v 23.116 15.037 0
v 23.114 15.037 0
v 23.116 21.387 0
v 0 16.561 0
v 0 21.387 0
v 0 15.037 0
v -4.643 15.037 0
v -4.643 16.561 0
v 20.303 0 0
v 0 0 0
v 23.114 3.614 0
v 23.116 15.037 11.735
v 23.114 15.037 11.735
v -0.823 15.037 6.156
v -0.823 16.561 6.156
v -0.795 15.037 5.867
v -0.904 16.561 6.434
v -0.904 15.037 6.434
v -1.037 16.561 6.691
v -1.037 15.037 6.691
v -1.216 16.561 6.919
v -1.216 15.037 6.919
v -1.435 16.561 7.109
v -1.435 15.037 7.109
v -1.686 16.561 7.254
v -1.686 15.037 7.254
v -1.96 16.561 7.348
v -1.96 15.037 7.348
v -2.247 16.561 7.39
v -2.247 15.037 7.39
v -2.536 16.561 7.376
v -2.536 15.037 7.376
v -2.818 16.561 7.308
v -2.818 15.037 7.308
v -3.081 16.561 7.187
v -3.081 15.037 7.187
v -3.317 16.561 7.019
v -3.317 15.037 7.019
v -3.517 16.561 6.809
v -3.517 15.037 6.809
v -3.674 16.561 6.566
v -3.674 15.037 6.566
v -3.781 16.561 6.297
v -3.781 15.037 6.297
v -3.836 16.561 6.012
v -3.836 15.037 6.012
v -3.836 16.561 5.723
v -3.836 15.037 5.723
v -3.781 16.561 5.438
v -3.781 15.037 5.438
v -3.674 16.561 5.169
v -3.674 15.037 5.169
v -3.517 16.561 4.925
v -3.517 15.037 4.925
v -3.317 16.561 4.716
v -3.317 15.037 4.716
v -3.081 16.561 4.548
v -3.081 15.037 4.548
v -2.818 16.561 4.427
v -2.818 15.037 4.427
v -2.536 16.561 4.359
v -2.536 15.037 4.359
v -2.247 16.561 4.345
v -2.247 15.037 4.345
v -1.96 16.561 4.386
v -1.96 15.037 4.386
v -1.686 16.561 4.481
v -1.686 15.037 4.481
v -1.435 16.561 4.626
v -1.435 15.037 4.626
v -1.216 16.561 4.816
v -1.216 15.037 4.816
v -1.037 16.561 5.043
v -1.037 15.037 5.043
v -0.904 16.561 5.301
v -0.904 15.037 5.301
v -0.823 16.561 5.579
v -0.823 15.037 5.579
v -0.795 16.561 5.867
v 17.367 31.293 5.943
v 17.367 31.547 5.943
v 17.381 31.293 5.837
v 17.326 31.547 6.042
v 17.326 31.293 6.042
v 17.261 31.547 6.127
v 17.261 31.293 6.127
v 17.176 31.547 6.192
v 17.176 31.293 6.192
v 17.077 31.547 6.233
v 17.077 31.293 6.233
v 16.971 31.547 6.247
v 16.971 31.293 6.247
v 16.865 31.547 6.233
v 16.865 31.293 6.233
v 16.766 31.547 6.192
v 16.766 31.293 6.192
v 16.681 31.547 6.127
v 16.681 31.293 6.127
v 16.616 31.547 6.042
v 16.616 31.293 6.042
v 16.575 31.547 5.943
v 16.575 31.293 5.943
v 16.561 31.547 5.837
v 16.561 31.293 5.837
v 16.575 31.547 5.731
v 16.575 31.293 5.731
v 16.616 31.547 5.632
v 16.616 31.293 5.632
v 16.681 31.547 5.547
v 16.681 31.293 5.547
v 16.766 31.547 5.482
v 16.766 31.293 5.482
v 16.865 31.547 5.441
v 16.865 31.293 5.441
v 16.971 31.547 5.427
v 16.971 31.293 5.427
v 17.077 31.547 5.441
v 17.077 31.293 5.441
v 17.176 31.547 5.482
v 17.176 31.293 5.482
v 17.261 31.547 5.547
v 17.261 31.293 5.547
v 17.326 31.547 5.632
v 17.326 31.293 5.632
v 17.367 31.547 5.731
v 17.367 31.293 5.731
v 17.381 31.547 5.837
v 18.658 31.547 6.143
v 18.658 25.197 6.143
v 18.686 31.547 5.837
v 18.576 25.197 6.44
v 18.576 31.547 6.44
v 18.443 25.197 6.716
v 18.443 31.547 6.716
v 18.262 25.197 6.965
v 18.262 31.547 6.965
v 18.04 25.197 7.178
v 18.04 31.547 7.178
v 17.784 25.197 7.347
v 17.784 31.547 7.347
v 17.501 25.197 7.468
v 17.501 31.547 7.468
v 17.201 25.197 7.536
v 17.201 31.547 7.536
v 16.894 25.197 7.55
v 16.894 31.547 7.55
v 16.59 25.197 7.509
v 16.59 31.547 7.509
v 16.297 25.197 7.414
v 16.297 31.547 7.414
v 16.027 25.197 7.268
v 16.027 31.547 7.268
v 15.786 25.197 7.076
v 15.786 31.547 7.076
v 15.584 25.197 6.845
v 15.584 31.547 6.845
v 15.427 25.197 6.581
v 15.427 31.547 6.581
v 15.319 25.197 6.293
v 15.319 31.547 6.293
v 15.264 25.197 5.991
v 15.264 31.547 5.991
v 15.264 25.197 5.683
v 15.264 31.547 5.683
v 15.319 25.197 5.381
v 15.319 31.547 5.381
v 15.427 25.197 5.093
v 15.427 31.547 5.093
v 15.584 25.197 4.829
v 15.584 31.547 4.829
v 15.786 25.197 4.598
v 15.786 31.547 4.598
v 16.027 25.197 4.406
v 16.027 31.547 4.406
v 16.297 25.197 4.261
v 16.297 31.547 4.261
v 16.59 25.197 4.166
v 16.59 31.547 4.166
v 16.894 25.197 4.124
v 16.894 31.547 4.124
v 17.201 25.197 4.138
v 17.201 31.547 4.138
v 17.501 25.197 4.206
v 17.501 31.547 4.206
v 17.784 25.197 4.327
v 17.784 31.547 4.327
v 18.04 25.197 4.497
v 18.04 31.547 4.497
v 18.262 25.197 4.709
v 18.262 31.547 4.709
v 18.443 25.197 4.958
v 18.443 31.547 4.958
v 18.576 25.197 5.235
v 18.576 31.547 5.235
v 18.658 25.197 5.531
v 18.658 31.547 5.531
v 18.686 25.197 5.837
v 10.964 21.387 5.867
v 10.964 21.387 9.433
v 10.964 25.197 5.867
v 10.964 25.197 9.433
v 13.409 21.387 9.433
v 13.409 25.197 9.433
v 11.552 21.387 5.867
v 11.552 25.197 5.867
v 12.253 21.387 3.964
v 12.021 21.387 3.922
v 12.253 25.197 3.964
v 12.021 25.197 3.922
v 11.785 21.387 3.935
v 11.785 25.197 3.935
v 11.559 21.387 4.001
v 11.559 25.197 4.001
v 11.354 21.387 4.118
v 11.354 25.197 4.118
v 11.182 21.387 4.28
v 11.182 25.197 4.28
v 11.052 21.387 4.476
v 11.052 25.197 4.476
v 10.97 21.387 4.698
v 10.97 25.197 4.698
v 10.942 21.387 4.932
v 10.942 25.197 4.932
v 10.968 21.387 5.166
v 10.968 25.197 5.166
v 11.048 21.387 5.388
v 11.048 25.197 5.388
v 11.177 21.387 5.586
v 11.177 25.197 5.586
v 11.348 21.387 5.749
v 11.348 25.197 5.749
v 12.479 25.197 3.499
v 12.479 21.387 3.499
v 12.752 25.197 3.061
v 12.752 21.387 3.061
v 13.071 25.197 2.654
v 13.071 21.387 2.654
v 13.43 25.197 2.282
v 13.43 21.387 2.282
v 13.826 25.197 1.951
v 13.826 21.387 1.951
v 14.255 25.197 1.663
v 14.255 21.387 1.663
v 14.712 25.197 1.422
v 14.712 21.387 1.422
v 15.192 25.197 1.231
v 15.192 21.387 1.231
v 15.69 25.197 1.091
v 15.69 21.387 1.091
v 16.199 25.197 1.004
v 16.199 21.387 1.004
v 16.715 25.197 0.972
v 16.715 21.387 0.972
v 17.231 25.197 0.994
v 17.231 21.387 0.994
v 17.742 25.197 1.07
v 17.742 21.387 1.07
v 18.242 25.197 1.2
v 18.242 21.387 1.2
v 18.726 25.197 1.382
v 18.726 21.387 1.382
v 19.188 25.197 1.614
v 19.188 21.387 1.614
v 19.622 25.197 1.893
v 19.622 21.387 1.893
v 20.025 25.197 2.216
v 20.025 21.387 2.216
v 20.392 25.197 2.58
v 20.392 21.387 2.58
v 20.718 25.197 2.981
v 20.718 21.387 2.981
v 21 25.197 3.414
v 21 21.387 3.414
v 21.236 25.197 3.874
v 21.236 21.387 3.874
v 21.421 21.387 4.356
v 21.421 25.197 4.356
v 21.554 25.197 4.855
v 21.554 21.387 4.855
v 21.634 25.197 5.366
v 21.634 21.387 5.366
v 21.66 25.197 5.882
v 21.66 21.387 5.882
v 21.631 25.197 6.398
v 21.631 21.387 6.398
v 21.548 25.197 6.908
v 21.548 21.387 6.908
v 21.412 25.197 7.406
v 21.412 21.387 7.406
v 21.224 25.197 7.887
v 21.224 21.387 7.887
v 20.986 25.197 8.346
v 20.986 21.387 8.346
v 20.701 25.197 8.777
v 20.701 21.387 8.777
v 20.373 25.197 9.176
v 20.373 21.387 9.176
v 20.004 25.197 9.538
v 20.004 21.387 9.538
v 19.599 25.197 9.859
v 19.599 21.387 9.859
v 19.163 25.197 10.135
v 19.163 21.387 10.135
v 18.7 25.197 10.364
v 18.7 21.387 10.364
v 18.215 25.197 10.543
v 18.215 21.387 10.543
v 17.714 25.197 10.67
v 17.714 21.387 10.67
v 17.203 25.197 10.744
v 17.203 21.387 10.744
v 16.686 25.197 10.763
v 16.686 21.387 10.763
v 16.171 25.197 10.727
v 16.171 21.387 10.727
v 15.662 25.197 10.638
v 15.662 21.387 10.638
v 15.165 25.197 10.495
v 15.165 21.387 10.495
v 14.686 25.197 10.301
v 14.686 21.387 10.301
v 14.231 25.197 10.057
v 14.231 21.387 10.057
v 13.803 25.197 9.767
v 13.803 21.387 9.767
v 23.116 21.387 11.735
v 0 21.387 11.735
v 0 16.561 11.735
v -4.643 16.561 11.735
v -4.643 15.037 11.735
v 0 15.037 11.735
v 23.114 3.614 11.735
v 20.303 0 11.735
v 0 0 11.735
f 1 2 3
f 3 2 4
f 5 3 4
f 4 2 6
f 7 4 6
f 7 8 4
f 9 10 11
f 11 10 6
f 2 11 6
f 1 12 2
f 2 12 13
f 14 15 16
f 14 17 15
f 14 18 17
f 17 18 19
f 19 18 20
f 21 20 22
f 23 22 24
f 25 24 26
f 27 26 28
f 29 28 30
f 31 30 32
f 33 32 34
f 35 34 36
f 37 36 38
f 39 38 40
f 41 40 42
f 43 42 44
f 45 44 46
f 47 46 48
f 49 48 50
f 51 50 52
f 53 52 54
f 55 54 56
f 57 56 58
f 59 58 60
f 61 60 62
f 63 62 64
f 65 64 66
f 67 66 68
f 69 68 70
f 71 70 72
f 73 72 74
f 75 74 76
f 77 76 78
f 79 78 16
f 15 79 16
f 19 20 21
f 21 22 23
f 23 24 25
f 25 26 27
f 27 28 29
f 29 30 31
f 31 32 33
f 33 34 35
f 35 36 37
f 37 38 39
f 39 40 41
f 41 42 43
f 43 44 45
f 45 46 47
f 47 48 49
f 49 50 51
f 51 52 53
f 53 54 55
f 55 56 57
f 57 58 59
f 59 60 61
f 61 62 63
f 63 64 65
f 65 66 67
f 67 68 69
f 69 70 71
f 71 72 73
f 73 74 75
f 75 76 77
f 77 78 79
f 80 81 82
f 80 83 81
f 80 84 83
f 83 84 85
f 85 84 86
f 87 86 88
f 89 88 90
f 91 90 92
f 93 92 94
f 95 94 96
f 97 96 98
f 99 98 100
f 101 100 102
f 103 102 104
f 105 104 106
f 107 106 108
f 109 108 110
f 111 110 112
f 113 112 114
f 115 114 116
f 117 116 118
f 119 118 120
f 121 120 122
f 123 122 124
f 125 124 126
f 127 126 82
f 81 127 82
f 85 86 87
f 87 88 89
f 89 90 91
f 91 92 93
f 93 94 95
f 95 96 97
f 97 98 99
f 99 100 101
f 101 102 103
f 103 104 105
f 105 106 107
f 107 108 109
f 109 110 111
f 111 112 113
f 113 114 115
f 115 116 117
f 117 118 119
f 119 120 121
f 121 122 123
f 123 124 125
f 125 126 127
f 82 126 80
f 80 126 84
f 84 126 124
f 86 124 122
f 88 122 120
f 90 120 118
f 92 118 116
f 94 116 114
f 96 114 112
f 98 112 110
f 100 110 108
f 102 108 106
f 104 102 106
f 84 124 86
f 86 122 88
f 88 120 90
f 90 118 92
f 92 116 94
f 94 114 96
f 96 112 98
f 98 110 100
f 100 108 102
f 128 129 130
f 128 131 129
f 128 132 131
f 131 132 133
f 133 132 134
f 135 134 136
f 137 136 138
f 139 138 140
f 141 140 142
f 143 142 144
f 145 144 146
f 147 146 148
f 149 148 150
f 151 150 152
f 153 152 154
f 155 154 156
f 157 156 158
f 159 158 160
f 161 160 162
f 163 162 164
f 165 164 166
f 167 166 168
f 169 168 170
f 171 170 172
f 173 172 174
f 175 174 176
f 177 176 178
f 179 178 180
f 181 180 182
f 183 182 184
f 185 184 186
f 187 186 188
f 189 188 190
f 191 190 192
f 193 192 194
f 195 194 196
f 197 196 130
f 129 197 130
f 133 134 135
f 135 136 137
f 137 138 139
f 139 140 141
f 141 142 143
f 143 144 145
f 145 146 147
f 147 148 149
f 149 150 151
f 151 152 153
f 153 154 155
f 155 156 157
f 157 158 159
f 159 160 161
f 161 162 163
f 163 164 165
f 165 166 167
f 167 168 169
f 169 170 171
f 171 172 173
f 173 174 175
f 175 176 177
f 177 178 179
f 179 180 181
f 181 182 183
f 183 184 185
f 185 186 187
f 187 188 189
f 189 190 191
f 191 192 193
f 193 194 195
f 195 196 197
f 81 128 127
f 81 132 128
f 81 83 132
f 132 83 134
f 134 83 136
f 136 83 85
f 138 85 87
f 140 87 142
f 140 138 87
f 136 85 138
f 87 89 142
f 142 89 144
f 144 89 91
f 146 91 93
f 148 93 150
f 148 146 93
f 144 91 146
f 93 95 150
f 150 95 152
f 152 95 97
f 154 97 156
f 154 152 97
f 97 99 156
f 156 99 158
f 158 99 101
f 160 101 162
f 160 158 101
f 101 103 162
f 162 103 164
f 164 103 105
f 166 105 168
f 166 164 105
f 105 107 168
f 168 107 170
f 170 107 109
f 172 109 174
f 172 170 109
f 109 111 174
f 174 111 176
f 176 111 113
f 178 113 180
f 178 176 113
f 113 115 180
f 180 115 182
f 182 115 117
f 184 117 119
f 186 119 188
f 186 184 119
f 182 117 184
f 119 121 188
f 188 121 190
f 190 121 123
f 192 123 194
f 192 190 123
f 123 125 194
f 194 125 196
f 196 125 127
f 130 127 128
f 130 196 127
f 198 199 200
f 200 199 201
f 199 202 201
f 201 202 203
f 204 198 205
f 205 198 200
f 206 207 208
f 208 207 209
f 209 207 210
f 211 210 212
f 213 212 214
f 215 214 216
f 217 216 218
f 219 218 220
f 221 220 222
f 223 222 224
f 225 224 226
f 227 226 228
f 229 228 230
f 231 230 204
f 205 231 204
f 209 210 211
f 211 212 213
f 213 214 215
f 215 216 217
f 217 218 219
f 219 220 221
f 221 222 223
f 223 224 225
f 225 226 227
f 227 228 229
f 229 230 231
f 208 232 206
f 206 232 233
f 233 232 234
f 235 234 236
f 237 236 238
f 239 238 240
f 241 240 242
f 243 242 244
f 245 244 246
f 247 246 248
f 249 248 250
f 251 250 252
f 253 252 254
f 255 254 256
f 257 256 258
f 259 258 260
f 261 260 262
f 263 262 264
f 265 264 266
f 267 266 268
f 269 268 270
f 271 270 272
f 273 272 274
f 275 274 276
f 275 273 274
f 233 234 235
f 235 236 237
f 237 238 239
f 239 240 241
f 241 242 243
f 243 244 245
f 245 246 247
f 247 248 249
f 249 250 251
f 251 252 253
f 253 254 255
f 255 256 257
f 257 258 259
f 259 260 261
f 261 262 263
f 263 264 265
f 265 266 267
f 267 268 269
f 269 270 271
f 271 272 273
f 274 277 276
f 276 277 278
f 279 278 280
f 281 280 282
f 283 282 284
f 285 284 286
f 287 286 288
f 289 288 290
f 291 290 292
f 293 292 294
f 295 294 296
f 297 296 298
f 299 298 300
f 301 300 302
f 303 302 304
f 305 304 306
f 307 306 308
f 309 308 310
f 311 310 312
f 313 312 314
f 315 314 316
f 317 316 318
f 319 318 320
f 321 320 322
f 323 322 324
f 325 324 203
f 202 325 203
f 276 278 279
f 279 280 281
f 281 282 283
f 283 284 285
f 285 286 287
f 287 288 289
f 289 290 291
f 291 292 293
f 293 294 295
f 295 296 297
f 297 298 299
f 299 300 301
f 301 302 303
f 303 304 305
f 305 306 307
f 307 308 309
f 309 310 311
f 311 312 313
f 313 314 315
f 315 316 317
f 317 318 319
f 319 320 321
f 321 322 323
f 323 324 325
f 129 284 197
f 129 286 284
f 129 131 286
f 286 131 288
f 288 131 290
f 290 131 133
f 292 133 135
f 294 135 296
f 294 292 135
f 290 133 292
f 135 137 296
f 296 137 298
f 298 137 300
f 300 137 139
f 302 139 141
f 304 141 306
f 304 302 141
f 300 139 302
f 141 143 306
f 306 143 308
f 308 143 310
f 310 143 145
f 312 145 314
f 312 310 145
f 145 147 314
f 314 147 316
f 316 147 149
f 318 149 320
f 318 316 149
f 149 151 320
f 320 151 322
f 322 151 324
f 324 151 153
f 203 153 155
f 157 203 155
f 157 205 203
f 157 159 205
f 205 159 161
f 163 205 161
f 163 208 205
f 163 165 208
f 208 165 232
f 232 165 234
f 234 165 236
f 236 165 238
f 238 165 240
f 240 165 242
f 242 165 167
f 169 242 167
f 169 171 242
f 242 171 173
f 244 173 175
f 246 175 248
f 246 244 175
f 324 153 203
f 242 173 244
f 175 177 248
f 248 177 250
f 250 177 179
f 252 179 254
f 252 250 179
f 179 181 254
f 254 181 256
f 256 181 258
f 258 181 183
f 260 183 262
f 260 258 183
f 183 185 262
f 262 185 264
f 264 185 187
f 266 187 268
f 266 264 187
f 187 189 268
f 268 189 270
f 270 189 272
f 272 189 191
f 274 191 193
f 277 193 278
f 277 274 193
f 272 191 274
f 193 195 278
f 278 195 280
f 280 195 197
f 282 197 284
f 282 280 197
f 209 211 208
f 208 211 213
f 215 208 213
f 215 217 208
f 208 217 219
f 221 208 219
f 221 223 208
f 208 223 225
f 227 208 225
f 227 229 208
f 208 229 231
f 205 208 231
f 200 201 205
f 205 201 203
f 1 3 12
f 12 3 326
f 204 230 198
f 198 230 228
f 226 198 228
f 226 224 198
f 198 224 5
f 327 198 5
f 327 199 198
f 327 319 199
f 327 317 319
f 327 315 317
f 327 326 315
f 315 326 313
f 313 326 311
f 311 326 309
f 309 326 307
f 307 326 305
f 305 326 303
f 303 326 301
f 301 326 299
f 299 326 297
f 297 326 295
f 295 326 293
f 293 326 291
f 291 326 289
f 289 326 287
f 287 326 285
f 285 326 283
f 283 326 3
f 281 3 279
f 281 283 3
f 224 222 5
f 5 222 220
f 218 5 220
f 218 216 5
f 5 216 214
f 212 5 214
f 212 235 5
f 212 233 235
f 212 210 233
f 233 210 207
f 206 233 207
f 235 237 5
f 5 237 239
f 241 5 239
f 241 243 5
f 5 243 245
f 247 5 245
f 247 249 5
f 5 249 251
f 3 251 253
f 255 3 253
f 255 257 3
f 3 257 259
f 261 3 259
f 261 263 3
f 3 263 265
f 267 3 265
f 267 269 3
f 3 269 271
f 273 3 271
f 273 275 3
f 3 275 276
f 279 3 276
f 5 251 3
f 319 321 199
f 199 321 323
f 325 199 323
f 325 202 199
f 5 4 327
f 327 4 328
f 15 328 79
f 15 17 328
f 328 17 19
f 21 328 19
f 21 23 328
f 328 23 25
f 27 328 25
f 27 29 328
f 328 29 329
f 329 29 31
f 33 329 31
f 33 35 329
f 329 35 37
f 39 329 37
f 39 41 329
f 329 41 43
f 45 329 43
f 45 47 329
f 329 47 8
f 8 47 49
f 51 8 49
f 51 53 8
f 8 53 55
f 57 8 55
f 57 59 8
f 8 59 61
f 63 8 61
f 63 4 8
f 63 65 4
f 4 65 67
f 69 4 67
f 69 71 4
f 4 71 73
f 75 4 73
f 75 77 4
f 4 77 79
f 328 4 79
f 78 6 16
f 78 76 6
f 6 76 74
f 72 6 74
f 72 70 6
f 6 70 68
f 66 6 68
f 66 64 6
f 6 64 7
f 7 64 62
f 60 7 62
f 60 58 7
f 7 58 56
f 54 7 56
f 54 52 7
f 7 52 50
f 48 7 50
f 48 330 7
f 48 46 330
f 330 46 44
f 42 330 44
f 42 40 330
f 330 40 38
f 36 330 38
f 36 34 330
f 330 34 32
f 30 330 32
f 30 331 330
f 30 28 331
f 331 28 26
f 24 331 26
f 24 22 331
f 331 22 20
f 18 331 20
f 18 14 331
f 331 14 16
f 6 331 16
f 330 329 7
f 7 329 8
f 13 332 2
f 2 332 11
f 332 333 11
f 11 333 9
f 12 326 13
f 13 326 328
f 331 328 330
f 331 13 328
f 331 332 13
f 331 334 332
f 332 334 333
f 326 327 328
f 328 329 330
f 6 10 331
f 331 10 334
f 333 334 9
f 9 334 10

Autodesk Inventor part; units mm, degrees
ref_plane "YZ Plane" through (0, 0, 0) normal (1, 0, 0) x (0, 1, 0)
ref_plane "XZ Plane" through (0, 0, 0) normal (0, 1, 0) x (-1, 0, 0)
ref_plane "XY Plane" through (0, 0, 0) normal (0, 0, 1) x (1, 0, 0)
sketch "Sketch1" plane through (0, 0, 0) normal (0, 0, 1) x (1, 0, 0)
  line L0 (0, 0) -> (23.114, 0)
  line L1 (23.114, 0) -> (23.114, 15.0368)
  line L2 (23.114, 15.0368) -> (0, 15.0368)
  line L3 (0, 15.0368) -> (0, 0)
  dimension "d0" = 15.0368
  dimension "d1" = 23.114
extrude "Extrusion1" add sketch "Sketch1" along normal blind 11.7348
sketch "Sketch2" plane through (0, 0, 11.7348) normal (0, 0, 1) x (1, 0, 0)
  line L0 (23.114, 0) -> (23.114, 3.6138)
  line L1 (23.114, 0) -> (23.114, 15.0368) projected
  line L2 (0, 0) -> (23.114, 0) projected
  line L3 (20.3034, 0) -> (23.114, 0)
  line L4 (23.114, 3.6138) -> (20.3034, 0)
extrude "Extrusion2" cut sketch "Sketch2" against normal blind 11.7348
sketch "Sketch3" plane through (0, 0, 11.7348) normal (0, 0, 1) x (1, 0, 0)
  line L0 (-4.6433, 16.5606) -> (27.1067, 16.5606)
  line L1 (27.1067, 16.5606) -> (27.1067, 15.0366)
  line L2 (27.1067, 15.0366) -> (-4.6433, 15.0366)
  line L3 (-4.6433, 15.0366) -> (-4.6433, 16.5606)
  line L4 (23.114, 15.0368) -> (0, 15.0368) projected
  point P0 (0, 0)
  dimension "d6" = 31.75
  dimension "d7" = 1.524
extrude "Extrusion3" add sketch "Sketch3" against normal blind 11.7348
sketch "Sketch4" plane through (0, 0, 11.7348) normal (0, 0, 1) x (1, 0, 0)
  line L0 (-4.6433, 16.5606) -> (27.1067, 16.5606) projected
  line L1 (0, 16.5606) -> (23.1157, 16.5606)
  line L2 (23.1157, 16.5606) -> (23.1157, 21.3866)
  line L3 (23.1157, 21.3866) -> (0, 21.3866)
  line L4 (0, 21.3866) -> (0, 16.5606)
  point P0 (0, 0)
  dimension "d10" = 4.826
extrude "Extrusion4" add sketch "Sketch4" against normal up to surface (11.7348 mm away)
sketch "Sketch5" plane through (0, 21.3866, 11.7348) normal (0, 1, 0) x (1, 0, 0)
  circle A0 centre (16.764, 5.8674) radius 4.8959
  line L0 (0, 11.7348) -> (23.1157, 11.7348) projected
  line L1 (0, 0) -> (0, 11.7348) projected
  line L2 (23.1157, 0) -> (0, 0) projected
  line L3 (23.1157, 0) -> (23.1157, 11.7348) projected
  point P0 (0, 11.7348)
  dimension "d14" = 9.7917
  dimension "d39" = 11.7348
  dimension "d40" = 5.8674
  dimension "d46" = 16.764
extrude "Extrusion5" add sketch "Sketch5" along normal blind 3.81 contours A0
sketch "Sketch6" plane through (16.764, 25.1966, 5.8674) normal (0, 1, 0) x (1, 0, 0)
  circle A0 centre (0, 0) radius 4.8958 projected
  arc A1 (-4.5107, 1.9034) -> (-5.2123, 0) centre (-4.8064, 0.9314) ccw
  line L0 (-5.2123, 0) -> (-5.7995, 0)
  line L1 (-5.7995, 0) -> (-5.7995, -3.5655)
  line L2 (-5.7995, -3.5655) -> (-3.355, -3.5655)
  line L3 (-4.228, 0.0962) -> (-4.228, 0.1127)
  point P0 (-16.764, 5.8674)
  point P1 (-5.5059, 0)
  dimension "d35" = 2.4445
  dimension "d36" = 3.5655
  dimension "d37" = 1.016
  dimension "d38" = 0.9314
extrude "Extrusion6" add sketch "Sketch6" against normal blind 3.9878 contours A0 L2 L1 L0 A1
sketch "Sketch7" plane through (0, 25.1966, 11.7348) normal (0, 1, 0) x (1, 0, 0)
  circle A0 centre (16.9713, 5.8977) radius 1.7145
  point P0 (0, 11.7348)
  dimension "d19" = 3.429
extrude "Extrusion7" add sketch "Sketch7" along normal blind 6.35
sketch "Sketch8" plane through (16.9713, 31.5466, 5.8371) normal (0, 1, 0) x (1, 0, 0)
  circle A0 centre (0, 0) radius 0.41
  point P0 (-16.9713, 5.8371)
extrude "Extrusion8" cut sketch "Sketch8" against normal blind 0.254
sketch "Sketch9" plane through (-4.6433, 16.5606, 11.7348) normal (0, 1, 0) x (1, 0, 0)
  line L0 (4.6433, 0) -> (4.6433, 11.7348) projected
  line L1 (0, 0) -> (0, 11.7348) projected
  line L2 (31.75, 0) -> (31.75, 11.7348) projected
  line L3 (27.759, 0) -> (27.759, 11.7348) projected
  circle A0 centre (2.3241, 5.8674) radius 1.524
  line L4 (0, 0) -> (4.6433, 0) projected
  circle A1 centre (29.7561, 5.8674) radius 1.524
  line L5 (27.759, 11.7348) -> (31.75, 11.7348) projected
  dimension "d24" = 4.6433
  dimension "d25" = 3.991
  dimension "d26" = 3.048
  dimension "d27" = 2.3241
  dimension "d28" = 11.7348
  dimension "d29" = 5.8674
  dimension "d30" = 3.048
  dimension "d31" = 5.8674
  dimension "d32" = 1.9939
extrude "Extrusion9" cut sketch "Sketch9" against normal blind 25.4
sketch "Sketch11" plane through (-4.6433, 16.5606, 11.7348) normal (0, 1, 0) x (1, 0, 0)
  circle A0 centre (29.7561, 5.8674) radius 1.524 projected
  circle A1 centre (29.7561, 5.8674) radius 1.524 projected
  line L0 (27.759, 11.7348) -> (27.759, 0) projected
  line L1 (27.759, 0) -> (31.75, 0) projected
  line L2 (31.75, 0) -> (31.75, 11.7348) projected
  line L3 (27.759, 11.7348) -> (31.75, 11.7348) projected
  point P0 (4.6433, 11.7348)
extrude "Extrusion10" cut sketch "Sketch11" against normal blind 25.4
